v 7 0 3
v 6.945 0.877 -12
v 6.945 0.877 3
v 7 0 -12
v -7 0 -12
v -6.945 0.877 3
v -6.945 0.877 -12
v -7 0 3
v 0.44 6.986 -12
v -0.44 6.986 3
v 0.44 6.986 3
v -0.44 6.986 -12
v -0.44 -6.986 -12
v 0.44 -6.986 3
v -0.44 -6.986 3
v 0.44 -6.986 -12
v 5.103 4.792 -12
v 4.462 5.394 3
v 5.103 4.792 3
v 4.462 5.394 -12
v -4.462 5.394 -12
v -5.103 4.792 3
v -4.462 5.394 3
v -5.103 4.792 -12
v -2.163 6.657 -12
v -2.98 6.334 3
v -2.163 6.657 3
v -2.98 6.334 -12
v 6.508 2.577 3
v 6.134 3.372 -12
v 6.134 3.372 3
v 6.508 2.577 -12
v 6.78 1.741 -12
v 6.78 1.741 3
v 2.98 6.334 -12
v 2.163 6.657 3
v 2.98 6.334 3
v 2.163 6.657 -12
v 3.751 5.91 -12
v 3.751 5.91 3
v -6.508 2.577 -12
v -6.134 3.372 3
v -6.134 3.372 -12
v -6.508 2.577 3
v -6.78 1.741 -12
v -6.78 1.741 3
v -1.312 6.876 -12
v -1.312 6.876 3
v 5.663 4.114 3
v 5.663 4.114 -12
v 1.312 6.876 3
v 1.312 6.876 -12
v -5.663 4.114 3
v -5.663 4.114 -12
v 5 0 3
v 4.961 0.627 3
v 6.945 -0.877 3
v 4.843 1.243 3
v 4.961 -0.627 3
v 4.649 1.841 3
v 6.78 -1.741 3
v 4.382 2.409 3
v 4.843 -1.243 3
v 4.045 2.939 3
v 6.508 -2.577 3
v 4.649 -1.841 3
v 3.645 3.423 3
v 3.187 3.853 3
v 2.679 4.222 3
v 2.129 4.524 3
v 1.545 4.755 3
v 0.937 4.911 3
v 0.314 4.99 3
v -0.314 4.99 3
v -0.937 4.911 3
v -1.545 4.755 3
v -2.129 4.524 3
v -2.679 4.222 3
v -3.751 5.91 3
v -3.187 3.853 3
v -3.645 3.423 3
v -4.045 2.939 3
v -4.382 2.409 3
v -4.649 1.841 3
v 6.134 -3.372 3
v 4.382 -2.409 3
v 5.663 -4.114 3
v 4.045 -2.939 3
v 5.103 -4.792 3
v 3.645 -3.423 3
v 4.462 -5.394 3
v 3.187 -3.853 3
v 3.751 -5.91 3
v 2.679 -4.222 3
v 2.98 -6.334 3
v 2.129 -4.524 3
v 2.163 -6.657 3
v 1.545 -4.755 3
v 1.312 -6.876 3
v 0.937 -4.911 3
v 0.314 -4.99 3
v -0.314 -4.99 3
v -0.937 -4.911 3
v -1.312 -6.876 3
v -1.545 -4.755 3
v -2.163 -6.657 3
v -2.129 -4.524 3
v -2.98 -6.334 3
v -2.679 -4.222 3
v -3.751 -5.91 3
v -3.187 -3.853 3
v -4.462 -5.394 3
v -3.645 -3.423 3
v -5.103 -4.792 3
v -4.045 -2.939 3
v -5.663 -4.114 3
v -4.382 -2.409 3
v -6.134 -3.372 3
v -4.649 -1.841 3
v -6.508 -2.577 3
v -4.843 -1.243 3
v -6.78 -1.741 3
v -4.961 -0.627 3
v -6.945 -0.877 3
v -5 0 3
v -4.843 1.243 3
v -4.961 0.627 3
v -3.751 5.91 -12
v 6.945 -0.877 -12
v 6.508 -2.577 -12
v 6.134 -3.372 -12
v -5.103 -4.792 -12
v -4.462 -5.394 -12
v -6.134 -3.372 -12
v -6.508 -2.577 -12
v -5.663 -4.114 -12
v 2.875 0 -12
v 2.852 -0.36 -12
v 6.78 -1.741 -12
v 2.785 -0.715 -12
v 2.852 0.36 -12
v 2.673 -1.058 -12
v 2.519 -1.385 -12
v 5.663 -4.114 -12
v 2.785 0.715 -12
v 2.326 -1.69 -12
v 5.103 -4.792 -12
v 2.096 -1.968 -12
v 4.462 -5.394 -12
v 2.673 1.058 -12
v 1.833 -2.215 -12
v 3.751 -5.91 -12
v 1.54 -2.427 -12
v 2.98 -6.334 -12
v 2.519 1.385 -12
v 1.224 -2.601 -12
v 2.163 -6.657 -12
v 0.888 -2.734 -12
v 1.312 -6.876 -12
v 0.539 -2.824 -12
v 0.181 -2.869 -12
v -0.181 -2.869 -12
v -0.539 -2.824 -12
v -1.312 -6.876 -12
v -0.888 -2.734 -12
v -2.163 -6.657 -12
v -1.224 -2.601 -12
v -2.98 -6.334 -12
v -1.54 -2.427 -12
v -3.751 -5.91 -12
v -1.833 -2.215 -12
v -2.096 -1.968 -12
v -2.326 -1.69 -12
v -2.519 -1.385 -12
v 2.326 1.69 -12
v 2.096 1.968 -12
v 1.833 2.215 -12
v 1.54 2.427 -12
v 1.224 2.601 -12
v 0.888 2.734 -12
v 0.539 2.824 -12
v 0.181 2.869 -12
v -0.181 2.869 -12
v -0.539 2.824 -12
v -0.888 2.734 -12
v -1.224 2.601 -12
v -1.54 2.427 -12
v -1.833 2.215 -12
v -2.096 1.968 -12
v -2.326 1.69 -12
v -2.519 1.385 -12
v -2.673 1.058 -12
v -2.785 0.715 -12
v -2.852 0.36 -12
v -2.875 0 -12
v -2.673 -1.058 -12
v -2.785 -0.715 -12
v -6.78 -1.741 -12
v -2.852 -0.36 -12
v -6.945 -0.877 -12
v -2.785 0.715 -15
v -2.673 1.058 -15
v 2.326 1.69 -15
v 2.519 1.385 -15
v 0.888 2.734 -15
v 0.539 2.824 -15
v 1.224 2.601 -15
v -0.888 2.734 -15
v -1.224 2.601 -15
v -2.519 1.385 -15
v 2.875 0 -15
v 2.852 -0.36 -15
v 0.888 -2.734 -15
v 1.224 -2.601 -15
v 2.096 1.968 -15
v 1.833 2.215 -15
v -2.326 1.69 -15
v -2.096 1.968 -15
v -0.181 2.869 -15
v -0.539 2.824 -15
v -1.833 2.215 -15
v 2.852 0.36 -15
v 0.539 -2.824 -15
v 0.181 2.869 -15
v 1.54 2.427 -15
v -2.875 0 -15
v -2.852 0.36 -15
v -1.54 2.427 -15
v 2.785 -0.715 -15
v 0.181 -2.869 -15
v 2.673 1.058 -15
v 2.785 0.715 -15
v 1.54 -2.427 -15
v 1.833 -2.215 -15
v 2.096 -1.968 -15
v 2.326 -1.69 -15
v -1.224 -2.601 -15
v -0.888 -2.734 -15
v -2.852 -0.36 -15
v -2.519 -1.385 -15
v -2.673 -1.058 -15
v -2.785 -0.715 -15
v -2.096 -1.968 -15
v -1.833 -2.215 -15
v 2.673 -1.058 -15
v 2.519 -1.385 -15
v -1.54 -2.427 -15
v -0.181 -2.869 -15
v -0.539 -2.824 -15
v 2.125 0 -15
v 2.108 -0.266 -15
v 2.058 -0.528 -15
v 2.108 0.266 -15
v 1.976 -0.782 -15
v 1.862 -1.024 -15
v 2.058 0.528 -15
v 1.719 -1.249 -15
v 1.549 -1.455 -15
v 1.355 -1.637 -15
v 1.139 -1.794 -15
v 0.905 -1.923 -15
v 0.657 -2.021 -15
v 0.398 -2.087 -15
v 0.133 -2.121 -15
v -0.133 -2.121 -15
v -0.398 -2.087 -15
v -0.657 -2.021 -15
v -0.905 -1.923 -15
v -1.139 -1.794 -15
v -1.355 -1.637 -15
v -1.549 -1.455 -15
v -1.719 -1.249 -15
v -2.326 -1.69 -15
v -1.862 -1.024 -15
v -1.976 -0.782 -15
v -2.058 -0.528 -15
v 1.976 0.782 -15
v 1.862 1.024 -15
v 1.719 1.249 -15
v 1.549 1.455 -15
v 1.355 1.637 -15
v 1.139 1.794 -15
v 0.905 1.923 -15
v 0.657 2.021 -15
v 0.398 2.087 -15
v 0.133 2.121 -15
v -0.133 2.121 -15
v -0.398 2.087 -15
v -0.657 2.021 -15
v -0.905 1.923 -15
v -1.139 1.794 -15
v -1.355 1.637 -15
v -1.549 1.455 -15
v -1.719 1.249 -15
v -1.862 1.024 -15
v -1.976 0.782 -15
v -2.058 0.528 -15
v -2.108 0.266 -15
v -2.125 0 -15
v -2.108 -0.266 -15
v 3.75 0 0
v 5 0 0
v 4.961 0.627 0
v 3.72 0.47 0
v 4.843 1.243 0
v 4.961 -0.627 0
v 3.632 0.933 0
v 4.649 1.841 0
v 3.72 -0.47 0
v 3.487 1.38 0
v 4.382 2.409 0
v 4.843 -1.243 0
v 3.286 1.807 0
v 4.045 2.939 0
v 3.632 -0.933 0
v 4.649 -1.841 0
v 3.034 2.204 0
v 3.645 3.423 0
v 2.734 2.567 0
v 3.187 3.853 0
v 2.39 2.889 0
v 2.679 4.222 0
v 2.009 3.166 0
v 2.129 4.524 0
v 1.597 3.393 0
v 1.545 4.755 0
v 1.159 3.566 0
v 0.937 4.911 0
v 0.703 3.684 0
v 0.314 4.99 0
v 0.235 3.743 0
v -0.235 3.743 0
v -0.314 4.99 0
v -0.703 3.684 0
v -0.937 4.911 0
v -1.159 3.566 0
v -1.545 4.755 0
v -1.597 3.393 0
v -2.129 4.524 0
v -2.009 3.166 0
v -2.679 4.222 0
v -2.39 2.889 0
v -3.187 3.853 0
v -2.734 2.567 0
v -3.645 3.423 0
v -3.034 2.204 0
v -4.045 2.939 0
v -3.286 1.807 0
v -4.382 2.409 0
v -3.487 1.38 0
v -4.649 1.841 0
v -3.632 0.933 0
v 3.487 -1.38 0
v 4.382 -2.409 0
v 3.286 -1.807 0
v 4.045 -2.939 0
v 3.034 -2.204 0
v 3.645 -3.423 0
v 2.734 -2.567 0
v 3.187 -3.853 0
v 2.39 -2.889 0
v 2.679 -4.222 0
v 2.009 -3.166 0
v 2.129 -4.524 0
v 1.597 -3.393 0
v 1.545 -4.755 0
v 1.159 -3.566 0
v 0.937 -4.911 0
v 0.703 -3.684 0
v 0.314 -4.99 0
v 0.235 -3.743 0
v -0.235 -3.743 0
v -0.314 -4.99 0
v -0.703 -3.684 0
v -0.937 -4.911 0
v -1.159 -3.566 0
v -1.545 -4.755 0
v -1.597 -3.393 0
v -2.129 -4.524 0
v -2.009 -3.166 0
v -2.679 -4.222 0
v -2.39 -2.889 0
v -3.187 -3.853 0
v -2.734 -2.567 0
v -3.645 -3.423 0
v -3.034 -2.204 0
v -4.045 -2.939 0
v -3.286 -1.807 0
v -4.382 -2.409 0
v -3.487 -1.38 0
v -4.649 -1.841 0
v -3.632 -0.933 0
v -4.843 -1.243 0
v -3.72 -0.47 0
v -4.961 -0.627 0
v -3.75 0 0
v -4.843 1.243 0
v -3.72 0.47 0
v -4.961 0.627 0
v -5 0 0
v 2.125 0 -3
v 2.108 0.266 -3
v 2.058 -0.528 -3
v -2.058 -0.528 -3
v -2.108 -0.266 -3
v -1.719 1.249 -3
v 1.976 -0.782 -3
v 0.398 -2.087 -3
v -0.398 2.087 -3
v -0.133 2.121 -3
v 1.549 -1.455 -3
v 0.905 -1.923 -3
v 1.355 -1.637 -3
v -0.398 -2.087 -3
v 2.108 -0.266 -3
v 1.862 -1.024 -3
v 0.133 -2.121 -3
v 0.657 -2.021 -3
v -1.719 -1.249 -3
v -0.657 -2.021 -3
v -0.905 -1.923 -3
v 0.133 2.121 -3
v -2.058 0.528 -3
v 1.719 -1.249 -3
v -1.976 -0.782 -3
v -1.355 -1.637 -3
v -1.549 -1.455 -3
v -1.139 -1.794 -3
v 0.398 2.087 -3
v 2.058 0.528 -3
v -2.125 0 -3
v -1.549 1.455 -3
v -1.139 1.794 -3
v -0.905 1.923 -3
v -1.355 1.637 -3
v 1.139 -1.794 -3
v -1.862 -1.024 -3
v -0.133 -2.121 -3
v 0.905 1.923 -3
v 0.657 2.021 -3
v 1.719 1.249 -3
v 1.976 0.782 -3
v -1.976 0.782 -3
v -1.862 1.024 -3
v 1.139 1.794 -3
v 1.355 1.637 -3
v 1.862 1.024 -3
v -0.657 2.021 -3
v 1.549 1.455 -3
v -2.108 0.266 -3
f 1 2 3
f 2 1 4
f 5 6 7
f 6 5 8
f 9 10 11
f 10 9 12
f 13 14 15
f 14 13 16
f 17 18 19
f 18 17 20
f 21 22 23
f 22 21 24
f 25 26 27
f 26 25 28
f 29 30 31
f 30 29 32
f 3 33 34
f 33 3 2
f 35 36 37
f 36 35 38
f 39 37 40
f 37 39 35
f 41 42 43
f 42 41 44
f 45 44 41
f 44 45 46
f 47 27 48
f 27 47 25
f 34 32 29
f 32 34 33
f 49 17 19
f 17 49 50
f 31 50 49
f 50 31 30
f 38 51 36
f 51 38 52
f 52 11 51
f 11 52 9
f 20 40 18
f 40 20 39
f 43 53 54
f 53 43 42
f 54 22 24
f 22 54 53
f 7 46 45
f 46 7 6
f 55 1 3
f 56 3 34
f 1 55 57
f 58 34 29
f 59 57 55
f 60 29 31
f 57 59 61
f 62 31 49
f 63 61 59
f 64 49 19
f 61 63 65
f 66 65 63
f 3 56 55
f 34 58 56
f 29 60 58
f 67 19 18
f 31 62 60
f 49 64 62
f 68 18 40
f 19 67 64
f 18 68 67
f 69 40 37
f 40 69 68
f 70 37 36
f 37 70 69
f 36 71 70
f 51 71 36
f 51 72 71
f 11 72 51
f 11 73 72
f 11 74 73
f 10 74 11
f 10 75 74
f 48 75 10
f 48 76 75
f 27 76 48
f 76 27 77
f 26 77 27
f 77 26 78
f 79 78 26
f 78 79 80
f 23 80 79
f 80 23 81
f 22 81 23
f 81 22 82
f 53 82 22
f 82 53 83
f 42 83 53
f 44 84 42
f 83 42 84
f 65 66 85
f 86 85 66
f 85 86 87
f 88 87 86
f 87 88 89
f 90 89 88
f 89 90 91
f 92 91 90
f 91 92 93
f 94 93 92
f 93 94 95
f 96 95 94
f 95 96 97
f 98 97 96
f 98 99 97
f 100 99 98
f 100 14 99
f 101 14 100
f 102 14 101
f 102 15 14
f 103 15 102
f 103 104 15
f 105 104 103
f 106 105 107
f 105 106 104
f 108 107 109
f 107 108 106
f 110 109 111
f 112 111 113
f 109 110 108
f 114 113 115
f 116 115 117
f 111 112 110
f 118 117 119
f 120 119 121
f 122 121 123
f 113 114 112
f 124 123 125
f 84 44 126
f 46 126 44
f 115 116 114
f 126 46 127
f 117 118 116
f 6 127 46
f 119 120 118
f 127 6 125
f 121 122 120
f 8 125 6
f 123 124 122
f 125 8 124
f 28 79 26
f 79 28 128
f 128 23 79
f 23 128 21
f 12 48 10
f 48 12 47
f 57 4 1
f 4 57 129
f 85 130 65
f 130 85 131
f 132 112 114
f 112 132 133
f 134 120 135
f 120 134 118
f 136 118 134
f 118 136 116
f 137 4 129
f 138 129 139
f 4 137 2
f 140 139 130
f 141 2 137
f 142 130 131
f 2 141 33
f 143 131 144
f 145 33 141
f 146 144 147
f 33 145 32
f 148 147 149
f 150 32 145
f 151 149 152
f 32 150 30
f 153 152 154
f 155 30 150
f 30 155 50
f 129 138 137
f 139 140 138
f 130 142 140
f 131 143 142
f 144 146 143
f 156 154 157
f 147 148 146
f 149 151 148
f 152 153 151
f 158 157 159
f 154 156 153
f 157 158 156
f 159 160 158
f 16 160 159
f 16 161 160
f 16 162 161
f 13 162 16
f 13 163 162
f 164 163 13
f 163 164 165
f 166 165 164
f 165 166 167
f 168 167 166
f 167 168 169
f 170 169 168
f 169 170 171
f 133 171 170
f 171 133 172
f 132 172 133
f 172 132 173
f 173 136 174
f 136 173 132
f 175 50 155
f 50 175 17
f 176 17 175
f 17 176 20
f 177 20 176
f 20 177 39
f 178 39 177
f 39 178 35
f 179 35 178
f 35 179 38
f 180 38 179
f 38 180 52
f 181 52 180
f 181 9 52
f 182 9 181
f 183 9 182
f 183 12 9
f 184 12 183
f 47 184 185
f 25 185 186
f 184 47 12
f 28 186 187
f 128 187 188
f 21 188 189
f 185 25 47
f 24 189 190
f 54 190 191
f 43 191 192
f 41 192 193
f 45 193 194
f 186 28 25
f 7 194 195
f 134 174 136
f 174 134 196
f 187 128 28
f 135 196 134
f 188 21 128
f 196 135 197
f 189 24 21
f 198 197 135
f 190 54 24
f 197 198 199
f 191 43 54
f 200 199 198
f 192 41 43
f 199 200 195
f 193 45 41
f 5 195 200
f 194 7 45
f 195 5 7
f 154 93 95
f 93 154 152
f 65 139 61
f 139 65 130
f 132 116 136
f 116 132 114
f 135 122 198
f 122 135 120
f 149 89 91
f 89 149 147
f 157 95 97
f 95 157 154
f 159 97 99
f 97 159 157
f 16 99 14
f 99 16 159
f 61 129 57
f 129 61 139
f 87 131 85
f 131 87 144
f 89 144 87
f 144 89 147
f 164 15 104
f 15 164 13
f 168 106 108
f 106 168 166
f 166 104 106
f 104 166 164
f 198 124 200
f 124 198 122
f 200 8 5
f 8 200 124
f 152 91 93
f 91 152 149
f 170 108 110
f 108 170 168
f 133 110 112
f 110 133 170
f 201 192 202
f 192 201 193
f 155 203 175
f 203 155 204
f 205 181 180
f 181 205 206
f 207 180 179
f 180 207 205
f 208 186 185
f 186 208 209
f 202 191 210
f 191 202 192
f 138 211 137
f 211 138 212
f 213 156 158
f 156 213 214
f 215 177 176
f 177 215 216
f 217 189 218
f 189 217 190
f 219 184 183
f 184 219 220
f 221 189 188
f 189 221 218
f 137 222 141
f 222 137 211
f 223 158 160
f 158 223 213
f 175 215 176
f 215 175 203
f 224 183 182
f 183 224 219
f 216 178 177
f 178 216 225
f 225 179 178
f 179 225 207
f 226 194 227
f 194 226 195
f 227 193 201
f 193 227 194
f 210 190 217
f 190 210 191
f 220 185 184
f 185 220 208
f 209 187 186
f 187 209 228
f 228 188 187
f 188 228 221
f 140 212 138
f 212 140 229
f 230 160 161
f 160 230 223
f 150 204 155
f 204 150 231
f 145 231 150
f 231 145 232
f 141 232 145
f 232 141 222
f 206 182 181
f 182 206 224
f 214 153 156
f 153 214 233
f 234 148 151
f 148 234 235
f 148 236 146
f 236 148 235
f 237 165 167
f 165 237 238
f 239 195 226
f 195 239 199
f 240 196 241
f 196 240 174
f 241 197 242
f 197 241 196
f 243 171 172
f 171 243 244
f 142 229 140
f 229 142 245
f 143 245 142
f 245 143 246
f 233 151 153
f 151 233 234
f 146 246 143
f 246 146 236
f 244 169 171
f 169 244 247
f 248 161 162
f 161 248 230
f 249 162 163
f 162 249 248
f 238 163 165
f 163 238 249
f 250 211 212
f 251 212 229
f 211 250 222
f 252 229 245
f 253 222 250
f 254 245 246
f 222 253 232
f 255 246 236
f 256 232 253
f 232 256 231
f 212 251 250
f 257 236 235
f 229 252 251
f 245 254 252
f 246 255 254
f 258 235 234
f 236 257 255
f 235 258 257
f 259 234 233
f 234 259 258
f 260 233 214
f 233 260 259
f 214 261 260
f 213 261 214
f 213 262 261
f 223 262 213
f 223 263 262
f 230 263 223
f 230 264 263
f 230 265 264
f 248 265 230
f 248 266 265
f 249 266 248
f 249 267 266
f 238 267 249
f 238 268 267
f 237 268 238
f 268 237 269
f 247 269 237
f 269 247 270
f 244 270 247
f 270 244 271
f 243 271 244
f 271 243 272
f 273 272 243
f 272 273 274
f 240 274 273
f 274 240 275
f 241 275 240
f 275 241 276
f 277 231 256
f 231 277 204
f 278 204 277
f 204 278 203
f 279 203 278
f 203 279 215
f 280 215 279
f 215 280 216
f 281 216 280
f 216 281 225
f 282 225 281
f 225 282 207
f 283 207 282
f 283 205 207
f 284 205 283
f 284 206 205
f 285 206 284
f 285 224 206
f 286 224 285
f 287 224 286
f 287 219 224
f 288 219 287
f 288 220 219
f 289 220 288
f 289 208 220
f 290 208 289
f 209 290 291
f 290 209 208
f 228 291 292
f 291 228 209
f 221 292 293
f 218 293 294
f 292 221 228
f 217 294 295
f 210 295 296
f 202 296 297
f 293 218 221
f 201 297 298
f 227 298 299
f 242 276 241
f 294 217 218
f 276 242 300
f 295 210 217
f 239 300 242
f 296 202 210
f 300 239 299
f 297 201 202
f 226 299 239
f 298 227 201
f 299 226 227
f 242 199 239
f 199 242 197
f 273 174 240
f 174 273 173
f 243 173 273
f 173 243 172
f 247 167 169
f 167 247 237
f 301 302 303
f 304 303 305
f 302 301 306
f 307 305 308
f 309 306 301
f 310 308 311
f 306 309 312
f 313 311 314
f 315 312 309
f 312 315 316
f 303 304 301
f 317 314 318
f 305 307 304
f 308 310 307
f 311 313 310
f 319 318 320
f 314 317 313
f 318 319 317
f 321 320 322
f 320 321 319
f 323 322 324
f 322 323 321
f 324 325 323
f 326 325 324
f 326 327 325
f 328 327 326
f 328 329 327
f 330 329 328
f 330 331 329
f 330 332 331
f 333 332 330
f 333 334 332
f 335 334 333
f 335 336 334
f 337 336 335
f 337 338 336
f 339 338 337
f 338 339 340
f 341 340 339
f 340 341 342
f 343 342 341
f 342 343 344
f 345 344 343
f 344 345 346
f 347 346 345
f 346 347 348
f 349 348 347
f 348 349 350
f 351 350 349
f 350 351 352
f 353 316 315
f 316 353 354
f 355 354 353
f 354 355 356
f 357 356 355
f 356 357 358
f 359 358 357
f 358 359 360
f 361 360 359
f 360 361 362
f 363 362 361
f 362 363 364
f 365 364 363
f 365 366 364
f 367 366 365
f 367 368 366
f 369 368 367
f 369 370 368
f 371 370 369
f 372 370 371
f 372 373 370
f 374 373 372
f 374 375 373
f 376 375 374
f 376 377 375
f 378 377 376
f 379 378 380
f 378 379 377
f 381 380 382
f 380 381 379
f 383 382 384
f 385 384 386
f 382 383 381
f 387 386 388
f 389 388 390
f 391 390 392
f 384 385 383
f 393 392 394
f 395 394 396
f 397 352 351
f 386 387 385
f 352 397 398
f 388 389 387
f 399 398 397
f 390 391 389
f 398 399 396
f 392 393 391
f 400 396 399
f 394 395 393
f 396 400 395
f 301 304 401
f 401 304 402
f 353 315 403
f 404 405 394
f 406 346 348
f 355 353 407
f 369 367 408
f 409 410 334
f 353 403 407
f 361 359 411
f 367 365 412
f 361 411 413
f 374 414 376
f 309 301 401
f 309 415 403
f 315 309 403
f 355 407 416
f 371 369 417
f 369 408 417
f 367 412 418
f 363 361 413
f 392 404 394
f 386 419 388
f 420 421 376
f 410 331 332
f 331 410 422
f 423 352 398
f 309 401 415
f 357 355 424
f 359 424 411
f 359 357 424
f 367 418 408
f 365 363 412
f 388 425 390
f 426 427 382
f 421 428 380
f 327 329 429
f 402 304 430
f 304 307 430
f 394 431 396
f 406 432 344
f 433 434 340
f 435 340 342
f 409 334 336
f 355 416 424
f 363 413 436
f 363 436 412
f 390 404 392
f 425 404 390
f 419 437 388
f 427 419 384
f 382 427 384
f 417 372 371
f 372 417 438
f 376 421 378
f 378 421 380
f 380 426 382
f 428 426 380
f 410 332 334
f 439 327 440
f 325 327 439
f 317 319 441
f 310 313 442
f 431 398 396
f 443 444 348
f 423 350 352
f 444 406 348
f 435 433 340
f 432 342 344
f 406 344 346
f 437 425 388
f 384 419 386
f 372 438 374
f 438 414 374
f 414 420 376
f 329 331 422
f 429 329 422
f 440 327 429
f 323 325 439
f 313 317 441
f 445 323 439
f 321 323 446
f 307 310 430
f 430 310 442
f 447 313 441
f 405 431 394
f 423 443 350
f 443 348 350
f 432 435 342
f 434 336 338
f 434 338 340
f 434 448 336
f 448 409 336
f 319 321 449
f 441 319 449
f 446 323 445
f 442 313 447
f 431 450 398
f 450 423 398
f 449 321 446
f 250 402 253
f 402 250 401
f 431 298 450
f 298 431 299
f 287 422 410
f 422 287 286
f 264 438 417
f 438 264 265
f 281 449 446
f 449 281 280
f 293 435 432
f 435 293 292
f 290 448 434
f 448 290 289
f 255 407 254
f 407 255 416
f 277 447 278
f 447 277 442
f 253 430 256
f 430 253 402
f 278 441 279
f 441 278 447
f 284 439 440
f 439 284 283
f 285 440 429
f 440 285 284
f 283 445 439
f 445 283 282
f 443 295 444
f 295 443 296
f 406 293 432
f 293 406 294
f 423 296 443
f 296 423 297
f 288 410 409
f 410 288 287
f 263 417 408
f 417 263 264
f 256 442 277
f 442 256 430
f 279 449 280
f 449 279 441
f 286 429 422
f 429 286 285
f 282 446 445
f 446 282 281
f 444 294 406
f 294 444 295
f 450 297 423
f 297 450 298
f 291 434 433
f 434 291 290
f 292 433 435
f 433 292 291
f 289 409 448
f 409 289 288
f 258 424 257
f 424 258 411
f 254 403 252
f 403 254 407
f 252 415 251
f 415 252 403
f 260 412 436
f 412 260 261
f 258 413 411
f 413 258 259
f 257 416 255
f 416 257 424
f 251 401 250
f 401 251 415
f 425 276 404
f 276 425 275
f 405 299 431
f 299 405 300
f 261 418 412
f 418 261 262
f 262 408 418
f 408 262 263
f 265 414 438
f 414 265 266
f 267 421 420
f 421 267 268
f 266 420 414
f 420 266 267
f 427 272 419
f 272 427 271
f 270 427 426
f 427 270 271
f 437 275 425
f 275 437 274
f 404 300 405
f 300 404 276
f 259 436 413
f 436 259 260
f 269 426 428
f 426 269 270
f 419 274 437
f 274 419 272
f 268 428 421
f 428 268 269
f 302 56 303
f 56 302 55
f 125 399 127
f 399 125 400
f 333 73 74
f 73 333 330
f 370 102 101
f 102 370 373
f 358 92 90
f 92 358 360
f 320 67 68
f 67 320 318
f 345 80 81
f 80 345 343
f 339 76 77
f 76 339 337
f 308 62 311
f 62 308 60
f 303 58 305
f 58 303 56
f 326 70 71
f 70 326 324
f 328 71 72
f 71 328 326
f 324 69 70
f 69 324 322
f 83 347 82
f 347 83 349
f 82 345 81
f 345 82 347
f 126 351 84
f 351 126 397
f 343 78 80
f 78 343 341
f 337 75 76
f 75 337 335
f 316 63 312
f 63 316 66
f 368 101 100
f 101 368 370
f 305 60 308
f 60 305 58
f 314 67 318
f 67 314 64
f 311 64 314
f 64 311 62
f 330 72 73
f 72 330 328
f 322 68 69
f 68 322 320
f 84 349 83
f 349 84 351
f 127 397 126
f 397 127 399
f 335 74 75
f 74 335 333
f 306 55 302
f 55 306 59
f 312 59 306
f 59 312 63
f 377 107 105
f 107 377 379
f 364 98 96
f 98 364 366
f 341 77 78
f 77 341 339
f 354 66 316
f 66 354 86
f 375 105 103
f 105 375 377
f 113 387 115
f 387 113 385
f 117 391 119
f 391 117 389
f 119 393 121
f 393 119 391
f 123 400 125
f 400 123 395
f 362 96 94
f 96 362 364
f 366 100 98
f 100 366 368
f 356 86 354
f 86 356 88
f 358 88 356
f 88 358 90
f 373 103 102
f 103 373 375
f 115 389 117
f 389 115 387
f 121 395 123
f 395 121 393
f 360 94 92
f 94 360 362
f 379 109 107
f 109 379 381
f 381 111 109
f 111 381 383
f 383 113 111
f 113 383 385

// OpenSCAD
$fn = 50;


difference() {
	union() {
		translate(v = [0, 0, -12.0000000000]) {
			cylinder(h = 15, r = 7.0000000000);
		}
		#translate(v = [0, 0, -15.0000000000]) {
			cylinder(h = 15, r = 2.8750000000);
		}
	}
	union() {
		translate(v = [0, 0, 0]) {
			rotate(a = [0, 0, 0]) {
				difference() {
					union() {
						translate(v = [0, 0, -15.0000000000]) {
							cylinder(h = 15, r = 2.0000000000);
						}
						translate(v = [0, 0, -3]) {
							cylinder(h = 3, r1 = 2.1250000000, r2 = 3.7500000000);
						}
						translate(v = [0, 0, -15.0000000000]) {
							cylinder(h = 15, r = 2.1250000000);
						}
						translate(v = [0, 0, -15.0000000000]) {
							cylinder(h = 15, r = 2.0000000000);
						}
					}
					union();
				}
			}
		}
		#cylinder(h = 3, r = 5.0000000000);
	}
}
